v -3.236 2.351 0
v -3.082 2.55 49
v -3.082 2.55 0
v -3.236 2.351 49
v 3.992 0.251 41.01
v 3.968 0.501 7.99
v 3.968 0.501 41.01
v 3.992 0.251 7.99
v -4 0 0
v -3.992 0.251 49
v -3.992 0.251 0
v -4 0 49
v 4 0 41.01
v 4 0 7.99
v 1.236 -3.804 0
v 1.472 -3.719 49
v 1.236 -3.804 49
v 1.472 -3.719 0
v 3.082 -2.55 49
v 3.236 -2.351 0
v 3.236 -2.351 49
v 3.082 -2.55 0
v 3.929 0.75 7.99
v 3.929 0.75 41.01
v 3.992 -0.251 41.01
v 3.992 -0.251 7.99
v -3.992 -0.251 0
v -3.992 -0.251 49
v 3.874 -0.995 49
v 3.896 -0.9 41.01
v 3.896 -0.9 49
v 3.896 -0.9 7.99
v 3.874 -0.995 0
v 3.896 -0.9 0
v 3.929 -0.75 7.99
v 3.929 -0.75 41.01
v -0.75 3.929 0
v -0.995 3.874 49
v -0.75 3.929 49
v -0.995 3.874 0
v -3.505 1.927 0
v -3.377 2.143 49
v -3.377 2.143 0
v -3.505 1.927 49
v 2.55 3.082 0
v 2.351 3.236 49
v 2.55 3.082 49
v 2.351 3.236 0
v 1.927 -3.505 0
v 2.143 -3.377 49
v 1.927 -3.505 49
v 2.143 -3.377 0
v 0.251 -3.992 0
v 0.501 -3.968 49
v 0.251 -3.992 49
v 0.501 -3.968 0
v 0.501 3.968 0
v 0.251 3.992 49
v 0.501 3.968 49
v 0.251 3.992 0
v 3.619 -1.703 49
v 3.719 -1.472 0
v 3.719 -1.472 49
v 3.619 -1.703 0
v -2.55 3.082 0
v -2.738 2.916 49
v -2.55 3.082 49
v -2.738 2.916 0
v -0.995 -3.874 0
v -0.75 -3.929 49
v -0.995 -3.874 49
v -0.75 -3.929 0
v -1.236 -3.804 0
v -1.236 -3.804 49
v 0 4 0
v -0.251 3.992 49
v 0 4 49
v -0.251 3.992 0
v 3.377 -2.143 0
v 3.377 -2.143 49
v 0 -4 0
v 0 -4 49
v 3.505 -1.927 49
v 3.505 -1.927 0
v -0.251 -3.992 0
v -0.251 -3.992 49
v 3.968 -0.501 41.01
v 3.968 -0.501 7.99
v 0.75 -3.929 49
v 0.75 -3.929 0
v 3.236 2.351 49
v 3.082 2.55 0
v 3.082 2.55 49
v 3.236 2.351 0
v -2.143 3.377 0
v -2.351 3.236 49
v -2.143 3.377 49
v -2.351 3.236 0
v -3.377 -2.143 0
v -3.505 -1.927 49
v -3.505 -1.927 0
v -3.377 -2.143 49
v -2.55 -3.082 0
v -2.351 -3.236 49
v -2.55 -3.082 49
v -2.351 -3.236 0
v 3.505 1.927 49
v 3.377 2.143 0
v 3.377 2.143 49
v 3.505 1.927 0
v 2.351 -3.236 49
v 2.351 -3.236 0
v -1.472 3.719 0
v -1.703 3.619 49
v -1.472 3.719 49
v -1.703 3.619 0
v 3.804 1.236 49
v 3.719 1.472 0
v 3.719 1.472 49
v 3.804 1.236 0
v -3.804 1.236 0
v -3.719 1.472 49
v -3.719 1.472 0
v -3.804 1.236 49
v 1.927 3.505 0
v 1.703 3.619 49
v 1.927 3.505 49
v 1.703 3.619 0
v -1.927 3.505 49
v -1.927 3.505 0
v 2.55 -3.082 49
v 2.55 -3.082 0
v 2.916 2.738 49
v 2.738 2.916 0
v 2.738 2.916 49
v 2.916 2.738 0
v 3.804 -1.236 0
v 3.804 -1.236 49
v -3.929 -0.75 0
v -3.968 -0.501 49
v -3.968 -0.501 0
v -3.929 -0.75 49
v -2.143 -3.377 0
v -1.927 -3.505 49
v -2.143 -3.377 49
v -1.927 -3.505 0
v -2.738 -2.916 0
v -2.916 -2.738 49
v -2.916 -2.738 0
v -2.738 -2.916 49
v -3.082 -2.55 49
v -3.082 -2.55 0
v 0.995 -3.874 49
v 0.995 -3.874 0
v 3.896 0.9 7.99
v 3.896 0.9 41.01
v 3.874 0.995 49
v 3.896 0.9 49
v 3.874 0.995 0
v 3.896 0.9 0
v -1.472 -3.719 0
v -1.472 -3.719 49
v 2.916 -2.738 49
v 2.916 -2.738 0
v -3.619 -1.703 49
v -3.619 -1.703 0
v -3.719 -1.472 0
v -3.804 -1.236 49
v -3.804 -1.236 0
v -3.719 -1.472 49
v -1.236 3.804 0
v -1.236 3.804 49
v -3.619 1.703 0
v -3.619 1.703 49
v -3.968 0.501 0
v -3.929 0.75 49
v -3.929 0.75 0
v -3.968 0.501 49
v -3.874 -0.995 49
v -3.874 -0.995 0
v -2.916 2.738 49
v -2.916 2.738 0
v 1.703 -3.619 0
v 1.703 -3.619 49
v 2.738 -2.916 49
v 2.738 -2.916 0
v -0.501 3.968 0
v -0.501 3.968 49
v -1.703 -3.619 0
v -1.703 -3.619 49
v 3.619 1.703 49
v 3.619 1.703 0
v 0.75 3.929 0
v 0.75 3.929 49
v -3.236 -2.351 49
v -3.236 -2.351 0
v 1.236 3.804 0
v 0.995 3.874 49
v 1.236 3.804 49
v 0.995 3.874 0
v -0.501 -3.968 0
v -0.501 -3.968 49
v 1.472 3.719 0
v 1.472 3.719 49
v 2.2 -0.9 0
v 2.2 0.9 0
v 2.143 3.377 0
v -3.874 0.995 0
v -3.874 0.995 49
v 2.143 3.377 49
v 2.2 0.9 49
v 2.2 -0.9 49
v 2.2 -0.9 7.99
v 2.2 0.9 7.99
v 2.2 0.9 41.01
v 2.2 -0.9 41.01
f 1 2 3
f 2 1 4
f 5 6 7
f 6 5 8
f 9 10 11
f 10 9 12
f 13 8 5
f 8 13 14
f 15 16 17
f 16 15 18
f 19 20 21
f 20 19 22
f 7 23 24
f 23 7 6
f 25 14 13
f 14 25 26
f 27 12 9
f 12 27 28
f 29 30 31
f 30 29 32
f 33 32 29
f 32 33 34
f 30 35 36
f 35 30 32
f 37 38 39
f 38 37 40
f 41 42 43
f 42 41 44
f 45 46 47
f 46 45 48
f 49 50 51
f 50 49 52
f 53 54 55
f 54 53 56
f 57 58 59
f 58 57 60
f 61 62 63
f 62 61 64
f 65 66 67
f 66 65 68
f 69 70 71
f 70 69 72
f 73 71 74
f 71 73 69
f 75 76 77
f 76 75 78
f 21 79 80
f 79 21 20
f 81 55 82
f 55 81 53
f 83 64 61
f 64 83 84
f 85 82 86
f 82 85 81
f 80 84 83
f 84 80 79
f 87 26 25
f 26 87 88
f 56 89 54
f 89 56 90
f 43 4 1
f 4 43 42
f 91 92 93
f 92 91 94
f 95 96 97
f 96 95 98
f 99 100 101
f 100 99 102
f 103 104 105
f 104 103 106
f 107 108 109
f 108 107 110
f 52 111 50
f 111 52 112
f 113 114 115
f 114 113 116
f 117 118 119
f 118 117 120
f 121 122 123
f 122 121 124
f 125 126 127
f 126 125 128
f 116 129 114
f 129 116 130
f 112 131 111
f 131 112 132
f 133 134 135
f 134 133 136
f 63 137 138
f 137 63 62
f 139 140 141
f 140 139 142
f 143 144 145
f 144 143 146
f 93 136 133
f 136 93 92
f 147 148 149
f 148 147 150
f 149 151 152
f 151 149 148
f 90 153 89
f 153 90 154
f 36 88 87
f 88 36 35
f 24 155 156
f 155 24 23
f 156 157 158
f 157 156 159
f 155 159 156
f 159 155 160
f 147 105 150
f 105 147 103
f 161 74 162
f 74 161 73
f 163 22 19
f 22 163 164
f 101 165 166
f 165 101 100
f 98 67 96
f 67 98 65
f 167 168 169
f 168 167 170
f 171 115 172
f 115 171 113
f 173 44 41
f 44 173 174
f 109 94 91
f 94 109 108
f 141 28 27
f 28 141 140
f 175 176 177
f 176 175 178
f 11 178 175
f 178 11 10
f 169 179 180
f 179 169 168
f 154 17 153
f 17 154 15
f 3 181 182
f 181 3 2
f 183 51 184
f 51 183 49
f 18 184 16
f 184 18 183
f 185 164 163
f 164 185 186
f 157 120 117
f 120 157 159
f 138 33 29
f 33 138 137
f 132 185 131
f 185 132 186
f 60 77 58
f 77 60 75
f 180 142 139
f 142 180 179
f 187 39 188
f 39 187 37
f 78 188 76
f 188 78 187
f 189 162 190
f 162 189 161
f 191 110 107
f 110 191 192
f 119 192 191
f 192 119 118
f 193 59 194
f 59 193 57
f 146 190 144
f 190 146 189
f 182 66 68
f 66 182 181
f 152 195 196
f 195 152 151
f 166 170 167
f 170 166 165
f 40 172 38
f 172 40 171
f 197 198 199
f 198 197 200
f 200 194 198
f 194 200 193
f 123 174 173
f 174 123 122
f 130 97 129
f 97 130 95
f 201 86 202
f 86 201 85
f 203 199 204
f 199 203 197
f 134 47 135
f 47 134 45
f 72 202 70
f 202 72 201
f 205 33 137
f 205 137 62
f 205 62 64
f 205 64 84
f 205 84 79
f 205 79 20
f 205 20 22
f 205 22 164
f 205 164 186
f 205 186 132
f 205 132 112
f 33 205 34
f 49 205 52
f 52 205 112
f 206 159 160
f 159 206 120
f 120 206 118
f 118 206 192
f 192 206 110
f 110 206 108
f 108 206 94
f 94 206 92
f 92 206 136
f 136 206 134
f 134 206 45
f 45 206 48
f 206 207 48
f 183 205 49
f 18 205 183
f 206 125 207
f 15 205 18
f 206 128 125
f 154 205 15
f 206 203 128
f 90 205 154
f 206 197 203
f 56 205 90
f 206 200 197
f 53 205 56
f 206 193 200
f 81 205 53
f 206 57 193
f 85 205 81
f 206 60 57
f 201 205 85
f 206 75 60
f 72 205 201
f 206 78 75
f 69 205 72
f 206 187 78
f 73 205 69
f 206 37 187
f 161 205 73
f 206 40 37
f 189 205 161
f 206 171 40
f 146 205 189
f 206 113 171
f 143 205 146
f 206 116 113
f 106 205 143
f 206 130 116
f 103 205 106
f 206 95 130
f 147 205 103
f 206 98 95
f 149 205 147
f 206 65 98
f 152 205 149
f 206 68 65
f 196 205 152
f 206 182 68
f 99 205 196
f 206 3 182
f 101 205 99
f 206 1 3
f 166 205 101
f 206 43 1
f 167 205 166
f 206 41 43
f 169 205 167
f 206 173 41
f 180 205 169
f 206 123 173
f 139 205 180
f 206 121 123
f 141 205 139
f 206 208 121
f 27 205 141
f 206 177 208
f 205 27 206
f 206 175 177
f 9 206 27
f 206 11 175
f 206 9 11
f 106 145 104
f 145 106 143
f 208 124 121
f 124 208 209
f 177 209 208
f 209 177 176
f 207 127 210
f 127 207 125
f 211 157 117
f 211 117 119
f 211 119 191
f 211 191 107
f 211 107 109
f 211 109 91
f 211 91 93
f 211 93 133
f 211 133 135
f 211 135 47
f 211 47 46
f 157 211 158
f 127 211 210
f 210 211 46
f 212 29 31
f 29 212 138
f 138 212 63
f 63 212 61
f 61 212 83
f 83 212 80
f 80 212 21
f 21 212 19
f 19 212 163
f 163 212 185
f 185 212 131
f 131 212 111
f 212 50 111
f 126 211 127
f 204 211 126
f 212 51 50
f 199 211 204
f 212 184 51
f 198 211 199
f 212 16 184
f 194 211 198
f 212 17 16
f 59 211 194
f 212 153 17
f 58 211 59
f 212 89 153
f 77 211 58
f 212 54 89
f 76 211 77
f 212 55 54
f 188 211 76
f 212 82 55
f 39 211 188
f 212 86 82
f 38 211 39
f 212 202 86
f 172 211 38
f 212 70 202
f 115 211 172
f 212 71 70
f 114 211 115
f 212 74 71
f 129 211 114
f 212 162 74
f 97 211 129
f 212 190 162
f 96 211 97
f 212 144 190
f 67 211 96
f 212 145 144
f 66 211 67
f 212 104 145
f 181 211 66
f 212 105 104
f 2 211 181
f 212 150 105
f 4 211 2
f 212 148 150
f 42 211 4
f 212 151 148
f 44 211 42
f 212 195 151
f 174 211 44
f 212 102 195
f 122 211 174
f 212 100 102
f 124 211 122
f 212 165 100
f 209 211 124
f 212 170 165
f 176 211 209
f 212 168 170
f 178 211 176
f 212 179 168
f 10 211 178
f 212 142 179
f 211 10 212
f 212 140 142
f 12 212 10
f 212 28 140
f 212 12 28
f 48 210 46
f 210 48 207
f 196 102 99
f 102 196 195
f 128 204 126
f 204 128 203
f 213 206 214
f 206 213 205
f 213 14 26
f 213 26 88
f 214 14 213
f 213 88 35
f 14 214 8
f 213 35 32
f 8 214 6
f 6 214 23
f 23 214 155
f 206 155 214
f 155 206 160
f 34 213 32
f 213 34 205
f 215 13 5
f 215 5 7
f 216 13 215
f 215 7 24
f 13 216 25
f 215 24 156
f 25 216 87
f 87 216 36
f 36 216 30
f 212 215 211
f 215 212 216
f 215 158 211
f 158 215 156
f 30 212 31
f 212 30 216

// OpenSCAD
$fn=100;

length=49;
diameter=7.8+0.2;

cutout_width=1.8;
cutout_height=1.8;
cutout_length=8;

difference(){
  linear_extrude(length) {
    circle(d=diameter);
  }
  translate([diameter/2,0,-0.01]) {
    linear_extrude(cutout_length) {
      square([cutout_width*2, cutout_height], center=true);
    }
  }
  translate([diameter/2,0,length+0.01-cutout_length]) {
    linear_extrude(cutout_length) {
      square([cutout_width*2, cutout_height], center=true);
    }
  }
}
